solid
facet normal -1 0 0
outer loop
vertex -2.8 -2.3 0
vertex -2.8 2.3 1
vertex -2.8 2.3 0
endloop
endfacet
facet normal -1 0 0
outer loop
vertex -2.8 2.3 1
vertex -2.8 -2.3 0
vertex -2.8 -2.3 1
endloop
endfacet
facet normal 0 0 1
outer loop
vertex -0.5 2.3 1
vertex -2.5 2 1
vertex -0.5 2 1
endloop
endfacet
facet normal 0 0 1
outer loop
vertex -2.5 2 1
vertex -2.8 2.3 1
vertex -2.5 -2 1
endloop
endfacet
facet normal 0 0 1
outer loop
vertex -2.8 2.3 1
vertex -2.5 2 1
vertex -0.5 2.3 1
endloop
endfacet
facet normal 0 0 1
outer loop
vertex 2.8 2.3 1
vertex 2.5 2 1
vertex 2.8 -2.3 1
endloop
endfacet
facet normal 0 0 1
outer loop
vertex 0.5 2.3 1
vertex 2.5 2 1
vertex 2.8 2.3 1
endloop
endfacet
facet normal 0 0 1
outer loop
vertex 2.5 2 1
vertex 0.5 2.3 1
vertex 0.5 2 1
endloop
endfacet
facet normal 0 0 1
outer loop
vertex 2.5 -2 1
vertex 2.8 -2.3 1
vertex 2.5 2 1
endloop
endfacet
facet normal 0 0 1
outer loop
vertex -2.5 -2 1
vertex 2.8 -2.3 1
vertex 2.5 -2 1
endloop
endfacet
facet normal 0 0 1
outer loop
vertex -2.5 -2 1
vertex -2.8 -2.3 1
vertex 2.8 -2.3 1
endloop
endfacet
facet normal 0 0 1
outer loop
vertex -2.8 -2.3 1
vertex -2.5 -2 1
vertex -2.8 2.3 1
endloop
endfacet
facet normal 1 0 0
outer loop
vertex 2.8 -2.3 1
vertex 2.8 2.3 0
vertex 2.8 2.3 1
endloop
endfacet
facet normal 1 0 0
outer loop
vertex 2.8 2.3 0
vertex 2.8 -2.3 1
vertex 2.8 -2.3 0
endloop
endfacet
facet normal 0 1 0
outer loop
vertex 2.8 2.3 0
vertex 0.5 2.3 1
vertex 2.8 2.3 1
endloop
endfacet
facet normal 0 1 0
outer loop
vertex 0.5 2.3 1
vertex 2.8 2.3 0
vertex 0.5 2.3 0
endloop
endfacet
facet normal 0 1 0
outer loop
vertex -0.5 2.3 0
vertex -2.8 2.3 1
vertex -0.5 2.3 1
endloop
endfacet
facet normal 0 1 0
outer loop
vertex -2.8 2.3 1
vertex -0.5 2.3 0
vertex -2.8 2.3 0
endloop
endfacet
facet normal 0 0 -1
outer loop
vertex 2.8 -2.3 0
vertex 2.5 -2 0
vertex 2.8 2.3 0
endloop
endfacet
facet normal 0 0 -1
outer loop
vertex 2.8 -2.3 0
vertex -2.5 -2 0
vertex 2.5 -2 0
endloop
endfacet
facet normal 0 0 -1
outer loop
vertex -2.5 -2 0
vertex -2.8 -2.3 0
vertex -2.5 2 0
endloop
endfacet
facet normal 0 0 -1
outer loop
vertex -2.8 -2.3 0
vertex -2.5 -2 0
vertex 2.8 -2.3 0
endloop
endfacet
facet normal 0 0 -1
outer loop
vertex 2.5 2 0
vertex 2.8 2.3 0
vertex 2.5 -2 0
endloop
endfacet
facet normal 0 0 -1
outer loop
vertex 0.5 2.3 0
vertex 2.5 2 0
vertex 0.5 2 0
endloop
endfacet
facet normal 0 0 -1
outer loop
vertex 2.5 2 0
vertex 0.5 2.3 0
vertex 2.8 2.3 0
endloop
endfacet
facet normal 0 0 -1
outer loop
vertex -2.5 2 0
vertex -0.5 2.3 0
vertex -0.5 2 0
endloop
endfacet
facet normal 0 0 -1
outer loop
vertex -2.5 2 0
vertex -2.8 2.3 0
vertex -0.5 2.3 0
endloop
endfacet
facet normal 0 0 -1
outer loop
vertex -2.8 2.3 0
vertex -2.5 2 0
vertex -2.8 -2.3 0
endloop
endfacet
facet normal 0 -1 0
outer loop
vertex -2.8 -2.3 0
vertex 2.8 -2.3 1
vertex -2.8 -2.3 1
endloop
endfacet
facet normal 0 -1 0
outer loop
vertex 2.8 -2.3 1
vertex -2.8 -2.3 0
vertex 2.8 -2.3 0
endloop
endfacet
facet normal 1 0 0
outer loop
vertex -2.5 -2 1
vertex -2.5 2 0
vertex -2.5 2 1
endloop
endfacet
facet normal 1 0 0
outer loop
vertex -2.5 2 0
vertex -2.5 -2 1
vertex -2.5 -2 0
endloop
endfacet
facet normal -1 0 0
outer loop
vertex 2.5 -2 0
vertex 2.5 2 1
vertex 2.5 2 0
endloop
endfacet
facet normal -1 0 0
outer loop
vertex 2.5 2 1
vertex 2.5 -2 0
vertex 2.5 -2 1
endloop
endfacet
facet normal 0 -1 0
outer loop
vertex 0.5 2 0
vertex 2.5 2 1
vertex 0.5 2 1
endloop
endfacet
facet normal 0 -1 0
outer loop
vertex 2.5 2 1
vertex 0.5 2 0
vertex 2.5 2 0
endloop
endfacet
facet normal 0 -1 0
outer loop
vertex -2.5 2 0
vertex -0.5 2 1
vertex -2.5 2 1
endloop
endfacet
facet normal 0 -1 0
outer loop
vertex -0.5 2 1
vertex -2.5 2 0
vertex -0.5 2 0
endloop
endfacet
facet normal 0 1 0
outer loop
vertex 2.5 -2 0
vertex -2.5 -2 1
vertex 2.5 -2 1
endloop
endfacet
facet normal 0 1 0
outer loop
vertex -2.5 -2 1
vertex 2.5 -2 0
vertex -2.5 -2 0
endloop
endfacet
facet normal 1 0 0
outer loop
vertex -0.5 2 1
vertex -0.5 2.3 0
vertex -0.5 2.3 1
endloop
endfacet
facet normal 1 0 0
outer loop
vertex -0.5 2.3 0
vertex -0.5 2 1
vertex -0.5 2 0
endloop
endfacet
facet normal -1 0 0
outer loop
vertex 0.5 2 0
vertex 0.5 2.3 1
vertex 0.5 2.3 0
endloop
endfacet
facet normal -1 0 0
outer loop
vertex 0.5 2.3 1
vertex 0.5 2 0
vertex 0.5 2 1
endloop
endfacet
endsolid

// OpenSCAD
dlugosc = 5;
szerokosc = 4;
grubosc = 0.3;
wysokosc = 1;

difference() {
    difference() {
        //zewnetrzna bryla
        translate([0,0,wysokosc/2])
            cube([dlugosc+2*grubosc, szerokosc+2*grubosc, 
            wysokosc], center=true);
        //wewnetrzna bryla
        translate([0,0,wysokosc/2])
            cube([dlugosc, szerokosc, 
            wysokosc], center=true);
    }
    #translate([0,(szerokosc+grubosc)/2, wysokosc/2])
        cube([1, grubosc, wysokosc], center = true);
}
